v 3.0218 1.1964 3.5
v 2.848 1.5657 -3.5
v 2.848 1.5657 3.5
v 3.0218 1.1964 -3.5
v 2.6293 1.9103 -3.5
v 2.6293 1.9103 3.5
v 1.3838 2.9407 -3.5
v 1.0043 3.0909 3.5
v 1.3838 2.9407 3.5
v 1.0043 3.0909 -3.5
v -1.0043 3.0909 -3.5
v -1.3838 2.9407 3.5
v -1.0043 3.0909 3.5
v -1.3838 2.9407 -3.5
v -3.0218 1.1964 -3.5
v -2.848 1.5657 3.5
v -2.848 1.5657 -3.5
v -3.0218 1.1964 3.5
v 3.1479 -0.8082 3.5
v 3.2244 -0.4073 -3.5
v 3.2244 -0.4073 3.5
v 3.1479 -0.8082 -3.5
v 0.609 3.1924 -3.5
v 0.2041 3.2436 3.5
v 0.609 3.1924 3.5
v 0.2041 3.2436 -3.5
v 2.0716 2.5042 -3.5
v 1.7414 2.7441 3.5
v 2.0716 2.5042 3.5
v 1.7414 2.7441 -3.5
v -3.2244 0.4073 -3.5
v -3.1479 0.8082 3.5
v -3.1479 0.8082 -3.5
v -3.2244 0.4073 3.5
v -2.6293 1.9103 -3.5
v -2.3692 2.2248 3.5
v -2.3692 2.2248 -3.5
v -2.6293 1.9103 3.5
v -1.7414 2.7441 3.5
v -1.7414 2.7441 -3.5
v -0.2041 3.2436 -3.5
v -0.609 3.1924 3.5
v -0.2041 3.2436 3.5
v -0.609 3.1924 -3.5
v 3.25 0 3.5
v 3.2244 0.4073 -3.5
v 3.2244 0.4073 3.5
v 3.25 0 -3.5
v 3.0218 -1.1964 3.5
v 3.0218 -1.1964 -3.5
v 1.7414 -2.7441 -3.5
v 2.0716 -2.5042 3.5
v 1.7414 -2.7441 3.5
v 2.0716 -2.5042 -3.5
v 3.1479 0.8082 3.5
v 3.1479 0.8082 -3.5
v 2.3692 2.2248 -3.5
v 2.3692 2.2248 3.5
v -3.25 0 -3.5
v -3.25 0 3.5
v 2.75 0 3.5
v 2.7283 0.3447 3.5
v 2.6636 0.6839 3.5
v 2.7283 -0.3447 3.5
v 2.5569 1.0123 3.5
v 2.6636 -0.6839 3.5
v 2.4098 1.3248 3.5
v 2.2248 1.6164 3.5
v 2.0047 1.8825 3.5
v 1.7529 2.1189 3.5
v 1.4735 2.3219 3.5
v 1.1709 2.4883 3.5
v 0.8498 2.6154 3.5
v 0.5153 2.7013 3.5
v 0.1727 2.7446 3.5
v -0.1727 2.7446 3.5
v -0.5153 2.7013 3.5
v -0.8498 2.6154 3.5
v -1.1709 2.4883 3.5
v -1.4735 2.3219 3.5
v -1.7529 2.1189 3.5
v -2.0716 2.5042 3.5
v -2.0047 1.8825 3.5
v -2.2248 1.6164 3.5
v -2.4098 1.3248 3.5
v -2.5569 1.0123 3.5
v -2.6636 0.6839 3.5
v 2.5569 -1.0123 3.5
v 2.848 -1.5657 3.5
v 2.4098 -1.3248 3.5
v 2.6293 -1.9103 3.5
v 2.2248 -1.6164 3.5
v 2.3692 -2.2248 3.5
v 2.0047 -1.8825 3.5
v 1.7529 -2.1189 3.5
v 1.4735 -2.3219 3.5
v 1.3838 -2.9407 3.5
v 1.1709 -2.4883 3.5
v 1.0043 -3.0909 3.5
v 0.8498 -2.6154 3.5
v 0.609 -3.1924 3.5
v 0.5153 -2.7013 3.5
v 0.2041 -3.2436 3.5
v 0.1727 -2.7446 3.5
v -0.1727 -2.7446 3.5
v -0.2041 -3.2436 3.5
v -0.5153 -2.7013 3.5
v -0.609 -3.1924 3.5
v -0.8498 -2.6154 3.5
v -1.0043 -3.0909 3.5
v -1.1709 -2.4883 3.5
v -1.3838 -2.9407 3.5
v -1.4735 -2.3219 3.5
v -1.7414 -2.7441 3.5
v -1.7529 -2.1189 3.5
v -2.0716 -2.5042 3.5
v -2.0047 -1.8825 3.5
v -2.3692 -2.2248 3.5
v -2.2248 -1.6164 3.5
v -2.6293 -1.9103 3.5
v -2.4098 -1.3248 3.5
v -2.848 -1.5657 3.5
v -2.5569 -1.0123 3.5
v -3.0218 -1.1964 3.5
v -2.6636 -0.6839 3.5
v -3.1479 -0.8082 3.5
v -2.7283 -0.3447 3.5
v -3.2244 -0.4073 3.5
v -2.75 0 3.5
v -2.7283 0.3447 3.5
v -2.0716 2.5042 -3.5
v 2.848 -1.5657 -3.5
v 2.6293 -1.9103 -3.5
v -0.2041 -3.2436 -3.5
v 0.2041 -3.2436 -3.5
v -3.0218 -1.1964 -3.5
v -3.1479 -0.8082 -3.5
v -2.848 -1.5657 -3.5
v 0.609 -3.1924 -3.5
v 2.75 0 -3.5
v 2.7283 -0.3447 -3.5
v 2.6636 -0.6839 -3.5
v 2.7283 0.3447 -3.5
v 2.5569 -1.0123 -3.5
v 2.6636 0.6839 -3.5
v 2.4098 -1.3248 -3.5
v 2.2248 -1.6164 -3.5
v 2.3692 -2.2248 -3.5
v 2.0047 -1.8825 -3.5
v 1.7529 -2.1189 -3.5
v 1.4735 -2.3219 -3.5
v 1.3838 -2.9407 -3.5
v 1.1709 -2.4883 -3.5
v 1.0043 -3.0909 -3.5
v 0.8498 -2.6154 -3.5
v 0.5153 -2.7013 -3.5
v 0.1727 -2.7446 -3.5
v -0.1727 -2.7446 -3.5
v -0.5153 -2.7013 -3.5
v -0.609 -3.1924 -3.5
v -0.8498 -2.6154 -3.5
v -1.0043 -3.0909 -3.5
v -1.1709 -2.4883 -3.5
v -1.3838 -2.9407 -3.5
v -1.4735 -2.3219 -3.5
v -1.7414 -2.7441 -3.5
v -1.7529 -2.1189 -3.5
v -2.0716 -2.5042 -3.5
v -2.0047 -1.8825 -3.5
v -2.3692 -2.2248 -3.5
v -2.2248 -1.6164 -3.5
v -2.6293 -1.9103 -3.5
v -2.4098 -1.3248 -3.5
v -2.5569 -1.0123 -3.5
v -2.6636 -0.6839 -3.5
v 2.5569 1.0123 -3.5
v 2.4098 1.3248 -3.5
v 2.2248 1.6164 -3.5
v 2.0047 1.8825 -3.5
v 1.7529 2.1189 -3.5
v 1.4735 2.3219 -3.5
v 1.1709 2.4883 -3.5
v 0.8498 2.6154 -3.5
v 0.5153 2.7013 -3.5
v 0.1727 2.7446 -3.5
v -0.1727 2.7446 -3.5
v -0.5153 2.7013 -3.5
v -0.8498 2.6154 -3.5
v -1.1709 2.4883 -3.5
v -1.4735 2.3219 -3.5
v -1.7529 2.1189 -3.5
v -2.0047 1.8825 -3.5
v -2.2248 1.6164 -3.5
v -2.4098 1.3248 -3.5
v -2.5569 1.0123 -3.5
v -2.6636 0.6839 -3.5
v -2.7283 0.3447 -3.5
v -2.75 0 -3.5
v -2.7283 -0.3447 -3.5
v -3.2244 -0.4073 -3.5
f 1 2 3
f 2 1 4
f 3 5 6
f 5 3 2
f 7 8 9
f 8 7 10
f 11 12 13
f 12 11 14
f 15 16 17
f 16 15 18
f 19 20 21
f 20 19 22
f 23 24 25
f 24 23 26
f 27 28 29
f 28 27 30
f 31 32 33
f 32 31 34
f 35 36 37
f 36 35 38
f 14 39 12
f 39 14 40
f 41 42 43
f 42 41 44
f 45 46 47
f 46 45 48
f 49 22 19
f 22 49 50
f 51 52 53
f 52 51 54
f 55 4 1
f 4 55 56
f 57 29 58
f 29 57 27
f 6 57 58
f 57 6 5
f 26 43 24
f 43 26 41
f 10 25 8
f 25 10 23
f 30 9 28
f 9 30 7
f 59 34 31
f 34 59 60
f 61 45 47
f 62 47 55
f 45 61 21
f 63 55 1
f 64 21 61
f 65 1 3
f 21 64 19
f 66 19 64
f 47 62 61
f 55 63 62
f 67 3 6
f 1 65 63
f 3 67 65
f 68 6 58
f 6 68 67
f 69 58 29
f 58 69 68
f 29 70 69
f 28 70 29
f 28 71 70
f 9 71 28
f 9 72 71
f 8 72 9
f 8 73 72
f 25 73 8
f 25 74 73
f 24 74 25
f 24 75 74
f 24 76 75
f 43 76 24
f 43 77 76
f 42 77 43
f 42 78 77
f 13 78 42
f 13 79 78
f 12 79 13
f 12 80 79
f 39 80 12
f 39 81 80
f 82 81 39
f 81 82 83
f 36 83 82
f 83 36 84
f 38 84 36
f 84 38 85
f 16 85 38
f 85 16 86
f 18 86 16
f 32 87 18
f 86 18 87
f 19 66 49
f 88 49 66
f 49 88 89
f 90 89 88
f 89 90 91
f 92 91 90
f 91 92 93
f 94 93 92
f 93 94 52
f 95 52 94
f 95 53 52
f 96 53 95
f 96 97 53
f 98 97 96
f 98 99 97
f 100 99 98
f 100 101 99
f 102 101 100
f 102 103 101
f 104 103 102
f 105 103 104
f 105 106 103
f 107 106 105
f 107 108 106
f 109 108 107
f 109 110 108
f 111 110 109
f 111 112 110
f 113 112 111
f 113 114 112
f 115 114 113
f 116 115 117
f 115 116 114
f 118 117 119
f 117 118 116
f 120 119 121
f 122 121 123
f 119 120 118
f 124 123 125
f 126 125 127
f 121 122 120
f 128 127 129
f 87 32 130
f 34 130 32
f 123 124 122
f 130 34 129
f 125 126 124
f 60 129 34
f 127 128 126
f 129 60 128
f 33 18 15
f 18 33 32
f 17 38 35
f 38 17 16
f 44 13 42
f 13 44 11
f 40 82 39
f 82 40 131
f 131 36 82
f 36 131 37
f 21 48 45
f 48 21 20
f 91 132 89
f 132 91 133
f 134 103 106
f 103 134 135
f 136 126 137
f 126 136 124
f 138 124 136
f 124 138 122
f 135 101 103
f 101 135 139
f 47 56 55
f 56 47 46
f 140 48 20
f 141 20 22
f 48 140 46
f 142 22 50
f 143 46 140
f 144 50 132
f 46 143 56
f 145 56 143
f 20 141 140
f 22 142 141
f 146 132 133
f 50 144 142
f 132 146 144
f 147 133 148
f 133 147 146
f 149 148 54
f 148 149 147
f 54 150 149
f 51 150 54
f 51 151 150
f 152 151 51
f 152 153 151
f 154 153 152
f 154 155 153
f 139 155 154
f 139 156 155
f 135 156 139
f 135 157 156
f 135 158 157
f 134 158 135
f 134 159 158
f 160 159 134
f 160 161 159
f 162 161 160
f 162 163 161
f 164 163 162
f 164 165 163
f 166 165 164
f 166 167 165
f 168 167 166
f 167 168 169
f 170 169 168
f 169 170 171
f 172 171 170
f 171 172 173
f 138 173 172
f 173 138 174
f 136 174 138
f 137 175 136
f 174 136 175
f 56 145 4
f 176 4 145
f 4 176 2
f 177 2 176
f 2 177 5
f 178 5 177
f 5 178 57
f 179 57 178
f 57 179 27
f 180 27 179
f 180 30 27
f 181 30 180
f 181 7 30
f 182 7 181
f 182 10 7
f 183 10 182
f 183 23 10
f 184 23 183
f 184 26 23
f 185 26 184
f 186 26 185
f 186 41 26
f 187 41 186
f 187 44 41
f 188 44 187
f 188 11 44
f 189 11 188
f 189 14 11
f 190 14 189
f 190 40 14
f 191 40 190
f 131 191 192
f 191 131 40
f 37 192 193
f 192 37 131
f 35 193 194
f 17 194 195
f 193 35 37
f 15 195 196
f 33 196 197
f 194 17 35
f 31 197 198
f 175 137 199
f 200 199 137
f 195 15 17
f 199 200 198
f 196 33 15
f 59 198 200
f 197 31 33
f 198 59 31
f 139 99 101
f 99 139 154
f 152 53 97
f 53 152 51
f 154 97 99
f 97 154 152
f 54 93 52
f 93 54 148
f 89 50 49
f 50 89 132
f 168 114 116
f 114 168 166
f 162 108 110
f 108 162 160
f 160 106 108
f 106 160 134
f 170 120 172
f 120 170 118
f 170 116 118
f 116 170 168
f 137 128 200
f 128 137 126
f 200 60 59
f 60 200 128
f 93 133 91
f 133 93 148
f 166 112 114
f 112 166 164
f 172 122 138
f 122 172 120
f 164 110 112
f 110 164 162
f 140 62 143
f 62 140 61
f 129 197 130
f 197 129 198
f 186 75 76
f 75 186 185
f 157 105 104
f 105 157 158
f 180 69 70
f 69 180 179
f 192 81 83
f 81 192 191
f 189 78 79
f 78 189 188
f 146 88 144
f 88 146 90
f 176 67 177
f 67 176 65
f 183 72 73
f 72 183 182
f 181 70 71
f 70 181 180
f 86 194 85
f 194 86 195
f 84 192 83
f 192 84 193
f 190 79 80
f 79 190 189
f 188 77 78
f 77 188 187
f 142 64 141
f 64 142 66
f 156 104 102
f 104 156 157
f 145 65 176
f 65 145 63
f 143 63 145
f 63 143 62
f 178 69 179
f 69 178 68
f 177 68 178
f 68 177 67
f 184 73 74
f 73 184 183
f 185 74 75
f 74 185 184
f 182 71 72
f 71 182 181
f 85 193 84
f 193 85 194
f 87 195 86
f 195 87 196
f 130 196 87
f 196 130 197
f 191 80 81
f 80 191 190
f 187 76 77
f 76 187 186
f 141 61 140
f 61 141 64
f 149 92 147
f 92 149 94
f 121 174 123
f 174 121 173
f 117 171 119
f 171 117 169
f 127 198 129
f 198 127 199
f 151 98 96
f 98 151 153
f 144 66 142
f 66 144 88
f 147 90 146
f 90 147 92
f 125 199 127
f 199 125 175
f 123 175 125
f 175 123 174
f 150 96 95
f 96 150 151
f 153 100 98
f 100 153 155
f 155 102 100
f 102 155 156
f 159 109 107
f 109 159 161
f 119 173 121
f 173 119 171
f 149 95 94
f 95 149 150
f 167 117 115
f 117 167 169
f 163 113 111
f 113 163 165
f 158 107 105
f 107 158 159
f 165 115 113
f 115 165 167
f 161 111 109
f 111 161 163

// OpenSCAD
$fn = 50;


difference() {
	union() {
		translate(v = [0, 0, -3.5000000000]) {
			cylinder(h = 7, r = 3.2500000000);
		}
	}
	union() {
		translate(v = [0, 0, -100.0000000000]) {
			cylinder(h = 200, r = 2.7500000000);
		}
	}
}
